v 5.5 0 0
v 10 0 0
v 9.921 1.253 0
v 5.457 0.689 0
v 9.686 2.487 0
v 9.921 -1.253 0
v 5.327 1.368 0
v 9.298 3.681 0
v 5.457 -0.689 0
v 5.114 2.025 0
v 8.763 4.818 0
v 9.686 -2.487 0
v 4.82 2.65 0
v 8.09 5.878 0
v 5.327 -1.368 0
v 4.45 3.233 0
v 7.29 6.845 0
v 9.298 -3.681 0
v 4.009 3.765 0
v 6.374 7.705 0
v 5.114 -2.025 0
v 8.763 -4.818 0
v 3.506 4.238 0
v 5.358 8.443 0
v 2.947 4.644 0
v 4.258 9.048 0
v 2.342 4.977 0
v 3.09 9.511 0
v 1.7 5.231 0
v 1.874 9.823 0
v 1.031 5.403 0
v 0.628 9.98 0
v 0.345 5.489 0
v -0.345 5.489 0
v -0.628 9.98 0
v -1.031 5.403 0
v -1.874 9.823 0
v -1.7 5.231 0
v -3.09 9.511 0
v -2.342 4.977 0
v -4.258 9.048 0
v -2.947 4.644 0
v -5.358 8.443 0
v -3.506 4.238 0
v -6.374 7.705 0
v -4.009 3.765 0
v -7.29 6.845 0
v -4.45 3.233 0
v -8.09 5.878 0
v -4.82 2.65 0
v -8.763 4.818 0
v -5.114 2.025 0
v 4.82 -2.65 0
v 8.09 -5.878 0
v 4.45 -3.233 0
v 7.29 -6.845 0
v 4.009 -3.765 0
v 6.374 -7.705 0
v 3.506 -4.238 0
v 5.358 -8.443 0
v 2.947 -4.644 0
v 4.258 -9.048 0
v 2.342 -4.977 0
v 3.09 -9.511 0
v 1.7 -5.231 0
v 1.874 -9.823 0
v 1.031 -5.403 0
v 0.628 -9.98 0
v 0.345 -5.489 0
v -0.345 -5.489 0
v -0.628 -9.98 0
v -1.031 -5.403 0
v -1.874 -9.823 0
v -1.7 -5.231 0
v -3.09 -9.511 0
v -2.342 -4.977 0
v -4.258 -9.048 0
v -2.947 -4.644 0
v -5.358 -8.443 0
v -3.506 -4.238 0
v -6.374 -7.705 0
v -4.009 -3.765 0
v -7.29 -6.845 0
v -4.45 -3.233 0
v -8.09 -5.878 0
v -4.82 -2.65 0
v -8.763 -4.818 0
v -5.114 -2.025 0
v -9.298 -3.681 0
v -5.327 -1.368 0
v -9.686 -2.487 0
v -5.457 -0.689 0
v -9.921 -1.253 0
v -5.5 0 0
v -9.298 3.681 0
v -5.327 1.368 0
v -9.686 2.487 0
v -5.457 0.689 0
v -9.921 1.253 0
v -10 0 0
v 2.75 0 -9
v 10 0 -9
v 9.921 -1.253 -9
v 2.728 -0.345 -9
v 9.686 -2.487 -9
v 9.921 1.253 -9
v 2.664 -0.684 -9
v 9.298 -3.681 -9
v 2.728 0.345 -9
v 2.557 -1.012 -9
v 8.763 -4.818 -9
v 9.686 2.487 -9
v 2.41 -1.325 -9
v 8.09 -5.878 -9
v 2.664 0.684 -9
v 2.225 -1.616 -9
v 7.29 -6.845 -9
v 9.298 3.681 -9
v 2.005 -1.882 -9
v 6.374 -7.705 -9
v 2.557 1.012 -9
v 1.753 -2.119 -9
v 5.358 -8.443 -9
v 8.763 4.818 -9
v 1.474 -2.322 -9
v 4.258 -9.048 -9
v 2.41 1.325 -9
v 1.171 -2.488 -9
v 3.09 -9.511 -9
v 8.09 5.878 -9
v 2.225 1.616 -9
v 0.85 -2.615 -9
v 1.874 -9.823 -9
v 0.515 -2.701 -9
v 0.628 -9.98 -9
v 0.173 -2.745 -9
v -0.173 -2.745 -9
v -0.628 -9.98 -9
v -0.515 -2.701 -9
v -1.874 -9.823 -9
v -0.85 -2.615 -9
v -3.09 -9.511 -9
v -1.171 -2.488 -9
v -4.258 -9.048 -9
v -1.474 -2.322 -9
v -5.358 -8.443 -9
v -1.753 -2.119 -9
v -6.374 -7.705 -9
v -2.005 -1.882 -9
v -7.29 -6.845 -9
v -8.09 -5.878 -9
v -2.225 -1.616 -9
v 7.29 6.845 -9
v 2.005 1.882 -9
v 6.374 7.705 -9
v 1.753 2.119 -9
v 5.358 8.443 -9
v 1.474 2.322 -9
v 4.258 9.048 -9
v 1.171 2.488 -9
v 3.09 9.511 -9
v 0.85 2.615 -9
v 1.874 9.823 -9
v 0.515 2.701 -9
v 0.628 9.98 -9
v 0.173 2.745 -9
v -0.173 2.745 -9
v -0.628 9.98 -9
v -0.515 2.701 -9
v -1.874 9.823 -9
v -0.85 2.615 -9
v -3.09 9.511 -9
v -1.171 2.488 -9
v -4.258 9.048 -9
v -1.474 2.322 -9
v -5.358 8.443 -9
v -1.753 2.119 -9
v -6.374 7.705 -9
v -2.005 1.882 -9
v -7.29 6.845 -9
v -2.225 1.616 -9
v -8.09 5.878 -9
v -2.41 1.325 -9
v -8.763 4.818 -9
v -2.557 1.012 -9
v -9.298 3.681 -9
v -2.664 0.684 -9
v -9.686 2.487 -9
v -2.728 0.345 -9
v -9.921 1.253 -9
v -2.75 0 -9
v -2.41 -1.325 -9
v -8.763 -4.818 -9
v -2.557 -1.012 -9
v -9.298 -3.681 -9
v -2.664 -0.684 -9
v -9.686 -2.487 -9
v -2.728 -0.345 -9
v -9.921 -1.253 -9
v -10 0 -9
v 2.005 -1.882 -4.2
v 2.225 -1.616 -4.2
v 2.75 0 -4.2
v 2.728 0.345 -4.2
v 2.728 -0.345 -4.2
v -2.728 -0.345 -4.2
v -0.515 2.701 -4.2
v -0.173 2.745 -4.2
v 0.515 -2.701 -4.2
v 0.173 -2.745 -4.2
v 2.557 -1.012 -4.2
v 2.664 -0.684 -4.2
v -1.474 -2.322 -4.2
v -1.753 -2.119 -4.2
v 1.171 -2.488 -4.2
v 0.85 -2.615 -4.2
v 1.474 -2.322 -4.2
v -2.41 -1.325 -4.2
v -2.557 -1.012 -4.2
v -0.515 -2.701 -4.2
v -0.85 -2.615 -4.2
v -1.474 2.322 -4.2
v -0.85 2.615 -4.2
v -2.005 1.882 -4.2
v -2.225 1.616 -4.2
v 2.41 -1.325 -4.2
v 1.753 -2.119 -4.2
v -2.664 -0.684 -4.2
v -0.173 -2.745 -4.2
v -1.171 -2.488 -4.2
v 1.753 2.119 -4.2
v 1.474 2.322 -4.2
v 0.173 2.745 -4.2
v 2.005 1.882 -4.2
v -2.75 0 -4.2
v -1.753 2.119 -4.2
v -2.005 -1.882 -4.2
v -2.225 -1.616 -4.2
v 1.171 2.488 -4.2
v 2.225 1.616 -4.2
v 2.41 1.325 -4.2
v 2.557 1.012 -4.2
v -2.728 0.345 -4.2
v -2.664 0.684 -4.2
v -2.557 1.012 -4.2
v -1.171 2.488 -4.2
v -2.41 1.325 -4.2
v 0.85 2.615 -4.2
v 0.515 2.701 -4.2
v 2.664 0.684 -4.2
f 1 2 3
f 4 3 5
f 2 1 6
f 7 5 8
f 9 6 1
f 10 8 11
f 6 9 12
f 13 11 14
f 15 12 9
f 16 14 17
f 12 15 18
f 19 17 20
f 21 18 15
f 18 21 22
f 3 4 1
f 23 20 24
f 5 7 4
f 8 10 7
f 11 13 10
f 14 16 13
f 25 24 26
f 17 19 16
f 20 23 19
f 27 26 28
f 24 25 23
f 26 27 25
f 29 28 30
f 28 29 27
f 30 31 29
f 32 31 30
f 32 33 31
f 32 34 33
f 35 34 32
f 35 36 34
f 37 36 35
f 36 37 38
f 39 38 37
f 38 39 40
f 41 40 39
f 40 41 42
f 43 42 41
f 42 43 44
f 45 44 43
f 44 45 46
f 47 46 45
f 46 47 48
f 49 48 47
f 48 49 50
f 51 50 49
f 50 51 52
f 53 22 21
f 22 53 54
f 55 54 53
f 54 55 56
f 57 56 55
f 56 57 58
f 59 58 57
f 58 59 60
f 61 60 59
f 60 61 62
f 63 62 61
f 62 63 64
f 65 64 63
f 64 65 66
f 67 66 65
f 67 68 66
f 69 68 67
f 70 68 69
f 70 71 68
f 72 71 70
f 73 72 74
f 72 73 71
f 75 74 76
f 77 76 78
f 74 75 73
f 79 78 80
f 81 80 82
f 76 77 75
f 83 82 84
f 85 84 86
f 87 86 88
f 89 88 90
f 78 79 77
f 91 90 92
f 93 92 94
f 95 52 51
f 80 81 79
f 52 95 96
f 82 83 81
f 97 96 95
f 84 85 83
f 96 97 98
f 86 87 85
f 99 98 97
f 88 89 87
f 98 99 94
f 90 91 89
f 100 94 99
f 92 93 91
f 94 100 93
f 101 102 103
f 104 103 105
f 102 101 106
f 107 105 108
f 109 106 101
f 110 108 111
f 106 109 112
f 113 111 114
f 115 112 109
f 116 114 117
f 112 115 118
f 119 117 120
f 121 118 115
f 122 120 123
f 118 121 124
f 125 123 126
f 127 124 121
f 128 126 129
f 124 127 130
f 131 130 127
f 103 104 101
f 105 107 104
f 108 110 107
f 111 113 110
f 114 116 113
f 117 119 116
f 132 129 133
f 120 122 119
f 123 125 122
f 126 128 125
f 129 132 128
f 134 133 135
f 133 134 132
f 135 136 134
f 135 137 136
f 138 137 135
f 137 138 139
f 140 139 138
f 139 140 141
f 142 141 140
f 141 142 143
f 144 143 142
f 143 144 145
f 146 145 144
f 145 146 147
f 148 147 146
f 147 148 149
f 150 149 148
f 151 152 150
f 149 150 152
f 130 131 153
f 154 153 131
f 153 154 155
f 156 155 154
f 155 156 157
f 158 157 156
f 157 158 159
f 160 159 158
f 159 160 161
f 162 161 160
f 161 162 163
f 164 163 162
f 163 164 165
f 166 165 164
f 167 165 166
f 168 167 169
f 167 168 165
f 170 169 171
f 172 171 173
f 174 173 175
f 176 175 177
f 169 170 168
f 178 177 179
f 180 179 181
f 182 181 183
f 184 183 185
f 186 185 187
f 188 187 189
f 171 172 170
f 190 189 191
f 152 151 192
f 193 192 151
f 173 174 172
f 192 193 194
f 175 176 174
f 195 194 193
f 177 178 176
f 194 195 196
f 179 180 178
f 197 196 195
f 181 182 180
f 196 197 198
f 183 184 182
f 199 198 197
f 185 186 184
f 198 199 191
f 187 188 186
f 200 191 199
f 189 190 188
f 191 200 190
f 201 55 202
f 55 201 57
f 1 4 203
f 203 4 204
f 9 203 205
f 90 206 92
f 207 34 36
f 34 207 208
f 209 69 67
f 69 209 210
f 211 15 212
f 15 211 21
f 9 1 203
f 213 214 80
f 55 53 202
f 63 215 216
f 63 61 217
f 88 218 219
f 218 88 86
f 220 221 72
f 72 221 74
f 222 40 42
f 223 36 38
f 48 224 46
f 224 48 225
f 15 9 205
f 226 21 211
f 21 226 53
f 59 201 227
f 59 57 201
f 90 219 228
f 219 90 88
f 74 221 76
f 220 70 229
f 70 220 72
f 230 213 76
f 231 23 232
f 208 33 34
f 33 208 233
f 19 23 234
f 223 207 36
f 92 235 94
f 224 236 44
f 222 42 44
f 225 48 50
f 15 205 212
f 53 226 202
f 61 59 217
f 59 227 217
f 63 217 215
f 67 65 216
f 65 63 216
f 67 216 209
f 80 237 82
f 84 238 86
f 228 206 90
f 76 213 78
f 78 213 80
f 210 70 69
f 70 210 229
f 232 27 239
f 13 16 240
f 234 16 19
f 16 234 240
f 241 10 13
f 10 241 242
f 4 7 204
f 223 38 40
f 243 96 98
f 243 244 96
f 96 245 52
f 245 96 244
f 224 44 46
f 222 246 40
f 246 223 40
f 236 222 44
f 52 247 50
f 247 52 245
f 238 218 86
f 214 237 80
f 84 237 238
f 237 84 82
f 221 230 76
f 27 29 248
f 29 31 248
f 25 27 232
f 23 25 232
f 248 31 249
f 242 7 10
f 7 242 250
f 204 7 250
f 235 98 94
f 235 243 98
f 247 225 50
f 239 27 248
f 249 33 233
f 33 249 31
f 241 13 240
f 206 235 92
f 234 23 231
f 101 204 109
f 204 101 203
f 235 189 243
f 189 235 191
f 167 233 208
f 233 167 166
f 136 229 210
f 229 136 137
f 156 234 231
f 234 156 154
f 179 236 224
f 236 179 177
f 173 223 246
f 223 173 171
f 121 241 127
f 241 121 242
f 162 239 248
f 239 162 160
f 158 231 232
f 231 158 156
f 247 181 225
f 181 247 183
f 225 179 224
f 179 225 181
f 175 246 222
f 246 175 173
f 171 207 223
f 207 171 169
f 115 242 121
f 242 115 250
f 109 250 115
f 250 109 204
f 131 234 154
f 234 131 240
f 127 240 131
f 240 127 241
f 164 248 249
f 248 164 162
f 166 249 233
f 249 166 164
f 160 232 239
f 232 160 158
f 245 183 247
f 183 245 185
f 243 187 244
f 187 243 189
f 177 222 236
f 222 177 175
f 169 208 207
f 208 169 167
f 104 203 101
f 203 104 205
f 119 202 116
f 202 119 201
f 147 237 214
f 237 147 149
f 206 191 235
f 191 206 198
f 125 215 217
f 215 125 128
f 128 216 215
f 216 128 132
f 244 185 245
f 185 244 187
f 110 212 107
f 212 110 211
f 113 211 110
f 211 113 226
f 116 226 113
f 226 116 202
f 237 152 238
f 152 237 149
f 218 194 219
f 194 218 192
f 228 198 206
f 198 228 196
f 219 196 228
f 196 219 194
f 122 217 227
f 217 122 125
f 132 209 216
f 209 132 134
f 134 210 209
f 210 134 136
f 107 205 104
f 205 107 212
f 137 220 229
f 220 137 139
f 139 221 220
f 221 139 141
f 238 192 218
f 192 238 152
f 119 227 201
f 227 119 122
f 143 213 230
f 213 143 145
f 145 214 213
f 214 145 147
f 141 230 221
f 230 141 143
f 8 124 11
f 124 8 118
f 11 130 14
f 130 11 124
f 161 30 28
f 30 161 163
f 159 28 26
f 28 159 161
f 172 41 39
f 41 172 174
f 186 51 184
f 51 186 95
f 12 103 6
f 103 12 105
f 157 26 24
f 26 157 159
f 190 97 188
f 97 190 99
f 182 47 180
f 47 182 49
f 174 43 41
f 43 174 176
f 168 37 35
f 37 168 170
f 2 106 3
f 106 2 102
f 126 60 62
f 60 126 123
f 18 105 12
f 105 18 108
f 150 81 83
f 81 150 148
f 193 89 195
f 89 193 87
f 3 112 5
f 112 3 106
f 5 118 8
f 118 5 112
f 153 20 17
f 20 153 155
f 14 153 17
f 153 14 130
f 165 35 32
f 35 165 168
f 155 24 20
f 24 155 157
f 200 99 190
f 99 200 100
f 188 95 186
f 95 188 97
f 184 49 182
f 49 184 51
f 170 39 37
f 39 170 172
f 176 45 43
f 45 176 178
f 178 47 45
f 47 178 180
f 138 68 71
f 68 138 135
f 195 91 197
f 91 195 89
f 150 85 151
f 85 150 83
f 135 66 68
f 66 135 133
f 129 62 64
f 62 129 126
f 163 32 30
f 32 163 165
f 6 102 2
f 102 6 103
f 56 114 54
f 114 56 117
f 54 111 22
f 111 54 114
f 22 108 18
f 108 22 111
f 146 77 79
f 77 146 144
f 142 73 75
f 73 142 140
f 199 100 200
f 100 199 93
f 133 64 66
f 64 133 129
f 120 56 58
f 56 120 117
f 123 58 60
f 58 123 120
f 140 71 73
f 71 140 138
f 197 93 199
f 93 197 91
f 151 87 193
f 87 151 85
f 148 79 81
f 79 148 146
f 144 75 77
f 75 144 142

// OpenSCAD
$fn = 50;


difference() {
	union() {
		translate(v = [0, 0, -9.0000000000]) {
			cylinder(h = 9, r = 10.0000000000);
		}
		cylinder(h = 0, r = 19.0000000000);
	}
	union() {
		translate(v = [0, 0, 0]) {
			rotate(a = [0, 0, 0]) {
				difference() {
					union() {
						#translate(v = [0, 0, -9.0000000000]) {
							cylinder(h = 9, r = 2.2500000000);
						}
						#translate(v = [0, 0, -4.2000000000]) {
							cylinder(h = 4.2000000000, r = 10.0000000000, r1 = 2.7500000000, r2 = 5.5000000000);
						}
						#translate(v = [0, 0, -9.0000000000]) {
							cylinder(h = 9, r = 2.7500000000);
						}
						#translate(v = [0, 0, -9.0000000000]) {
							cylinder(h = 9, r = 2.2500000000);
						}
					}
					union();
				}
			}
		}
	}
}
